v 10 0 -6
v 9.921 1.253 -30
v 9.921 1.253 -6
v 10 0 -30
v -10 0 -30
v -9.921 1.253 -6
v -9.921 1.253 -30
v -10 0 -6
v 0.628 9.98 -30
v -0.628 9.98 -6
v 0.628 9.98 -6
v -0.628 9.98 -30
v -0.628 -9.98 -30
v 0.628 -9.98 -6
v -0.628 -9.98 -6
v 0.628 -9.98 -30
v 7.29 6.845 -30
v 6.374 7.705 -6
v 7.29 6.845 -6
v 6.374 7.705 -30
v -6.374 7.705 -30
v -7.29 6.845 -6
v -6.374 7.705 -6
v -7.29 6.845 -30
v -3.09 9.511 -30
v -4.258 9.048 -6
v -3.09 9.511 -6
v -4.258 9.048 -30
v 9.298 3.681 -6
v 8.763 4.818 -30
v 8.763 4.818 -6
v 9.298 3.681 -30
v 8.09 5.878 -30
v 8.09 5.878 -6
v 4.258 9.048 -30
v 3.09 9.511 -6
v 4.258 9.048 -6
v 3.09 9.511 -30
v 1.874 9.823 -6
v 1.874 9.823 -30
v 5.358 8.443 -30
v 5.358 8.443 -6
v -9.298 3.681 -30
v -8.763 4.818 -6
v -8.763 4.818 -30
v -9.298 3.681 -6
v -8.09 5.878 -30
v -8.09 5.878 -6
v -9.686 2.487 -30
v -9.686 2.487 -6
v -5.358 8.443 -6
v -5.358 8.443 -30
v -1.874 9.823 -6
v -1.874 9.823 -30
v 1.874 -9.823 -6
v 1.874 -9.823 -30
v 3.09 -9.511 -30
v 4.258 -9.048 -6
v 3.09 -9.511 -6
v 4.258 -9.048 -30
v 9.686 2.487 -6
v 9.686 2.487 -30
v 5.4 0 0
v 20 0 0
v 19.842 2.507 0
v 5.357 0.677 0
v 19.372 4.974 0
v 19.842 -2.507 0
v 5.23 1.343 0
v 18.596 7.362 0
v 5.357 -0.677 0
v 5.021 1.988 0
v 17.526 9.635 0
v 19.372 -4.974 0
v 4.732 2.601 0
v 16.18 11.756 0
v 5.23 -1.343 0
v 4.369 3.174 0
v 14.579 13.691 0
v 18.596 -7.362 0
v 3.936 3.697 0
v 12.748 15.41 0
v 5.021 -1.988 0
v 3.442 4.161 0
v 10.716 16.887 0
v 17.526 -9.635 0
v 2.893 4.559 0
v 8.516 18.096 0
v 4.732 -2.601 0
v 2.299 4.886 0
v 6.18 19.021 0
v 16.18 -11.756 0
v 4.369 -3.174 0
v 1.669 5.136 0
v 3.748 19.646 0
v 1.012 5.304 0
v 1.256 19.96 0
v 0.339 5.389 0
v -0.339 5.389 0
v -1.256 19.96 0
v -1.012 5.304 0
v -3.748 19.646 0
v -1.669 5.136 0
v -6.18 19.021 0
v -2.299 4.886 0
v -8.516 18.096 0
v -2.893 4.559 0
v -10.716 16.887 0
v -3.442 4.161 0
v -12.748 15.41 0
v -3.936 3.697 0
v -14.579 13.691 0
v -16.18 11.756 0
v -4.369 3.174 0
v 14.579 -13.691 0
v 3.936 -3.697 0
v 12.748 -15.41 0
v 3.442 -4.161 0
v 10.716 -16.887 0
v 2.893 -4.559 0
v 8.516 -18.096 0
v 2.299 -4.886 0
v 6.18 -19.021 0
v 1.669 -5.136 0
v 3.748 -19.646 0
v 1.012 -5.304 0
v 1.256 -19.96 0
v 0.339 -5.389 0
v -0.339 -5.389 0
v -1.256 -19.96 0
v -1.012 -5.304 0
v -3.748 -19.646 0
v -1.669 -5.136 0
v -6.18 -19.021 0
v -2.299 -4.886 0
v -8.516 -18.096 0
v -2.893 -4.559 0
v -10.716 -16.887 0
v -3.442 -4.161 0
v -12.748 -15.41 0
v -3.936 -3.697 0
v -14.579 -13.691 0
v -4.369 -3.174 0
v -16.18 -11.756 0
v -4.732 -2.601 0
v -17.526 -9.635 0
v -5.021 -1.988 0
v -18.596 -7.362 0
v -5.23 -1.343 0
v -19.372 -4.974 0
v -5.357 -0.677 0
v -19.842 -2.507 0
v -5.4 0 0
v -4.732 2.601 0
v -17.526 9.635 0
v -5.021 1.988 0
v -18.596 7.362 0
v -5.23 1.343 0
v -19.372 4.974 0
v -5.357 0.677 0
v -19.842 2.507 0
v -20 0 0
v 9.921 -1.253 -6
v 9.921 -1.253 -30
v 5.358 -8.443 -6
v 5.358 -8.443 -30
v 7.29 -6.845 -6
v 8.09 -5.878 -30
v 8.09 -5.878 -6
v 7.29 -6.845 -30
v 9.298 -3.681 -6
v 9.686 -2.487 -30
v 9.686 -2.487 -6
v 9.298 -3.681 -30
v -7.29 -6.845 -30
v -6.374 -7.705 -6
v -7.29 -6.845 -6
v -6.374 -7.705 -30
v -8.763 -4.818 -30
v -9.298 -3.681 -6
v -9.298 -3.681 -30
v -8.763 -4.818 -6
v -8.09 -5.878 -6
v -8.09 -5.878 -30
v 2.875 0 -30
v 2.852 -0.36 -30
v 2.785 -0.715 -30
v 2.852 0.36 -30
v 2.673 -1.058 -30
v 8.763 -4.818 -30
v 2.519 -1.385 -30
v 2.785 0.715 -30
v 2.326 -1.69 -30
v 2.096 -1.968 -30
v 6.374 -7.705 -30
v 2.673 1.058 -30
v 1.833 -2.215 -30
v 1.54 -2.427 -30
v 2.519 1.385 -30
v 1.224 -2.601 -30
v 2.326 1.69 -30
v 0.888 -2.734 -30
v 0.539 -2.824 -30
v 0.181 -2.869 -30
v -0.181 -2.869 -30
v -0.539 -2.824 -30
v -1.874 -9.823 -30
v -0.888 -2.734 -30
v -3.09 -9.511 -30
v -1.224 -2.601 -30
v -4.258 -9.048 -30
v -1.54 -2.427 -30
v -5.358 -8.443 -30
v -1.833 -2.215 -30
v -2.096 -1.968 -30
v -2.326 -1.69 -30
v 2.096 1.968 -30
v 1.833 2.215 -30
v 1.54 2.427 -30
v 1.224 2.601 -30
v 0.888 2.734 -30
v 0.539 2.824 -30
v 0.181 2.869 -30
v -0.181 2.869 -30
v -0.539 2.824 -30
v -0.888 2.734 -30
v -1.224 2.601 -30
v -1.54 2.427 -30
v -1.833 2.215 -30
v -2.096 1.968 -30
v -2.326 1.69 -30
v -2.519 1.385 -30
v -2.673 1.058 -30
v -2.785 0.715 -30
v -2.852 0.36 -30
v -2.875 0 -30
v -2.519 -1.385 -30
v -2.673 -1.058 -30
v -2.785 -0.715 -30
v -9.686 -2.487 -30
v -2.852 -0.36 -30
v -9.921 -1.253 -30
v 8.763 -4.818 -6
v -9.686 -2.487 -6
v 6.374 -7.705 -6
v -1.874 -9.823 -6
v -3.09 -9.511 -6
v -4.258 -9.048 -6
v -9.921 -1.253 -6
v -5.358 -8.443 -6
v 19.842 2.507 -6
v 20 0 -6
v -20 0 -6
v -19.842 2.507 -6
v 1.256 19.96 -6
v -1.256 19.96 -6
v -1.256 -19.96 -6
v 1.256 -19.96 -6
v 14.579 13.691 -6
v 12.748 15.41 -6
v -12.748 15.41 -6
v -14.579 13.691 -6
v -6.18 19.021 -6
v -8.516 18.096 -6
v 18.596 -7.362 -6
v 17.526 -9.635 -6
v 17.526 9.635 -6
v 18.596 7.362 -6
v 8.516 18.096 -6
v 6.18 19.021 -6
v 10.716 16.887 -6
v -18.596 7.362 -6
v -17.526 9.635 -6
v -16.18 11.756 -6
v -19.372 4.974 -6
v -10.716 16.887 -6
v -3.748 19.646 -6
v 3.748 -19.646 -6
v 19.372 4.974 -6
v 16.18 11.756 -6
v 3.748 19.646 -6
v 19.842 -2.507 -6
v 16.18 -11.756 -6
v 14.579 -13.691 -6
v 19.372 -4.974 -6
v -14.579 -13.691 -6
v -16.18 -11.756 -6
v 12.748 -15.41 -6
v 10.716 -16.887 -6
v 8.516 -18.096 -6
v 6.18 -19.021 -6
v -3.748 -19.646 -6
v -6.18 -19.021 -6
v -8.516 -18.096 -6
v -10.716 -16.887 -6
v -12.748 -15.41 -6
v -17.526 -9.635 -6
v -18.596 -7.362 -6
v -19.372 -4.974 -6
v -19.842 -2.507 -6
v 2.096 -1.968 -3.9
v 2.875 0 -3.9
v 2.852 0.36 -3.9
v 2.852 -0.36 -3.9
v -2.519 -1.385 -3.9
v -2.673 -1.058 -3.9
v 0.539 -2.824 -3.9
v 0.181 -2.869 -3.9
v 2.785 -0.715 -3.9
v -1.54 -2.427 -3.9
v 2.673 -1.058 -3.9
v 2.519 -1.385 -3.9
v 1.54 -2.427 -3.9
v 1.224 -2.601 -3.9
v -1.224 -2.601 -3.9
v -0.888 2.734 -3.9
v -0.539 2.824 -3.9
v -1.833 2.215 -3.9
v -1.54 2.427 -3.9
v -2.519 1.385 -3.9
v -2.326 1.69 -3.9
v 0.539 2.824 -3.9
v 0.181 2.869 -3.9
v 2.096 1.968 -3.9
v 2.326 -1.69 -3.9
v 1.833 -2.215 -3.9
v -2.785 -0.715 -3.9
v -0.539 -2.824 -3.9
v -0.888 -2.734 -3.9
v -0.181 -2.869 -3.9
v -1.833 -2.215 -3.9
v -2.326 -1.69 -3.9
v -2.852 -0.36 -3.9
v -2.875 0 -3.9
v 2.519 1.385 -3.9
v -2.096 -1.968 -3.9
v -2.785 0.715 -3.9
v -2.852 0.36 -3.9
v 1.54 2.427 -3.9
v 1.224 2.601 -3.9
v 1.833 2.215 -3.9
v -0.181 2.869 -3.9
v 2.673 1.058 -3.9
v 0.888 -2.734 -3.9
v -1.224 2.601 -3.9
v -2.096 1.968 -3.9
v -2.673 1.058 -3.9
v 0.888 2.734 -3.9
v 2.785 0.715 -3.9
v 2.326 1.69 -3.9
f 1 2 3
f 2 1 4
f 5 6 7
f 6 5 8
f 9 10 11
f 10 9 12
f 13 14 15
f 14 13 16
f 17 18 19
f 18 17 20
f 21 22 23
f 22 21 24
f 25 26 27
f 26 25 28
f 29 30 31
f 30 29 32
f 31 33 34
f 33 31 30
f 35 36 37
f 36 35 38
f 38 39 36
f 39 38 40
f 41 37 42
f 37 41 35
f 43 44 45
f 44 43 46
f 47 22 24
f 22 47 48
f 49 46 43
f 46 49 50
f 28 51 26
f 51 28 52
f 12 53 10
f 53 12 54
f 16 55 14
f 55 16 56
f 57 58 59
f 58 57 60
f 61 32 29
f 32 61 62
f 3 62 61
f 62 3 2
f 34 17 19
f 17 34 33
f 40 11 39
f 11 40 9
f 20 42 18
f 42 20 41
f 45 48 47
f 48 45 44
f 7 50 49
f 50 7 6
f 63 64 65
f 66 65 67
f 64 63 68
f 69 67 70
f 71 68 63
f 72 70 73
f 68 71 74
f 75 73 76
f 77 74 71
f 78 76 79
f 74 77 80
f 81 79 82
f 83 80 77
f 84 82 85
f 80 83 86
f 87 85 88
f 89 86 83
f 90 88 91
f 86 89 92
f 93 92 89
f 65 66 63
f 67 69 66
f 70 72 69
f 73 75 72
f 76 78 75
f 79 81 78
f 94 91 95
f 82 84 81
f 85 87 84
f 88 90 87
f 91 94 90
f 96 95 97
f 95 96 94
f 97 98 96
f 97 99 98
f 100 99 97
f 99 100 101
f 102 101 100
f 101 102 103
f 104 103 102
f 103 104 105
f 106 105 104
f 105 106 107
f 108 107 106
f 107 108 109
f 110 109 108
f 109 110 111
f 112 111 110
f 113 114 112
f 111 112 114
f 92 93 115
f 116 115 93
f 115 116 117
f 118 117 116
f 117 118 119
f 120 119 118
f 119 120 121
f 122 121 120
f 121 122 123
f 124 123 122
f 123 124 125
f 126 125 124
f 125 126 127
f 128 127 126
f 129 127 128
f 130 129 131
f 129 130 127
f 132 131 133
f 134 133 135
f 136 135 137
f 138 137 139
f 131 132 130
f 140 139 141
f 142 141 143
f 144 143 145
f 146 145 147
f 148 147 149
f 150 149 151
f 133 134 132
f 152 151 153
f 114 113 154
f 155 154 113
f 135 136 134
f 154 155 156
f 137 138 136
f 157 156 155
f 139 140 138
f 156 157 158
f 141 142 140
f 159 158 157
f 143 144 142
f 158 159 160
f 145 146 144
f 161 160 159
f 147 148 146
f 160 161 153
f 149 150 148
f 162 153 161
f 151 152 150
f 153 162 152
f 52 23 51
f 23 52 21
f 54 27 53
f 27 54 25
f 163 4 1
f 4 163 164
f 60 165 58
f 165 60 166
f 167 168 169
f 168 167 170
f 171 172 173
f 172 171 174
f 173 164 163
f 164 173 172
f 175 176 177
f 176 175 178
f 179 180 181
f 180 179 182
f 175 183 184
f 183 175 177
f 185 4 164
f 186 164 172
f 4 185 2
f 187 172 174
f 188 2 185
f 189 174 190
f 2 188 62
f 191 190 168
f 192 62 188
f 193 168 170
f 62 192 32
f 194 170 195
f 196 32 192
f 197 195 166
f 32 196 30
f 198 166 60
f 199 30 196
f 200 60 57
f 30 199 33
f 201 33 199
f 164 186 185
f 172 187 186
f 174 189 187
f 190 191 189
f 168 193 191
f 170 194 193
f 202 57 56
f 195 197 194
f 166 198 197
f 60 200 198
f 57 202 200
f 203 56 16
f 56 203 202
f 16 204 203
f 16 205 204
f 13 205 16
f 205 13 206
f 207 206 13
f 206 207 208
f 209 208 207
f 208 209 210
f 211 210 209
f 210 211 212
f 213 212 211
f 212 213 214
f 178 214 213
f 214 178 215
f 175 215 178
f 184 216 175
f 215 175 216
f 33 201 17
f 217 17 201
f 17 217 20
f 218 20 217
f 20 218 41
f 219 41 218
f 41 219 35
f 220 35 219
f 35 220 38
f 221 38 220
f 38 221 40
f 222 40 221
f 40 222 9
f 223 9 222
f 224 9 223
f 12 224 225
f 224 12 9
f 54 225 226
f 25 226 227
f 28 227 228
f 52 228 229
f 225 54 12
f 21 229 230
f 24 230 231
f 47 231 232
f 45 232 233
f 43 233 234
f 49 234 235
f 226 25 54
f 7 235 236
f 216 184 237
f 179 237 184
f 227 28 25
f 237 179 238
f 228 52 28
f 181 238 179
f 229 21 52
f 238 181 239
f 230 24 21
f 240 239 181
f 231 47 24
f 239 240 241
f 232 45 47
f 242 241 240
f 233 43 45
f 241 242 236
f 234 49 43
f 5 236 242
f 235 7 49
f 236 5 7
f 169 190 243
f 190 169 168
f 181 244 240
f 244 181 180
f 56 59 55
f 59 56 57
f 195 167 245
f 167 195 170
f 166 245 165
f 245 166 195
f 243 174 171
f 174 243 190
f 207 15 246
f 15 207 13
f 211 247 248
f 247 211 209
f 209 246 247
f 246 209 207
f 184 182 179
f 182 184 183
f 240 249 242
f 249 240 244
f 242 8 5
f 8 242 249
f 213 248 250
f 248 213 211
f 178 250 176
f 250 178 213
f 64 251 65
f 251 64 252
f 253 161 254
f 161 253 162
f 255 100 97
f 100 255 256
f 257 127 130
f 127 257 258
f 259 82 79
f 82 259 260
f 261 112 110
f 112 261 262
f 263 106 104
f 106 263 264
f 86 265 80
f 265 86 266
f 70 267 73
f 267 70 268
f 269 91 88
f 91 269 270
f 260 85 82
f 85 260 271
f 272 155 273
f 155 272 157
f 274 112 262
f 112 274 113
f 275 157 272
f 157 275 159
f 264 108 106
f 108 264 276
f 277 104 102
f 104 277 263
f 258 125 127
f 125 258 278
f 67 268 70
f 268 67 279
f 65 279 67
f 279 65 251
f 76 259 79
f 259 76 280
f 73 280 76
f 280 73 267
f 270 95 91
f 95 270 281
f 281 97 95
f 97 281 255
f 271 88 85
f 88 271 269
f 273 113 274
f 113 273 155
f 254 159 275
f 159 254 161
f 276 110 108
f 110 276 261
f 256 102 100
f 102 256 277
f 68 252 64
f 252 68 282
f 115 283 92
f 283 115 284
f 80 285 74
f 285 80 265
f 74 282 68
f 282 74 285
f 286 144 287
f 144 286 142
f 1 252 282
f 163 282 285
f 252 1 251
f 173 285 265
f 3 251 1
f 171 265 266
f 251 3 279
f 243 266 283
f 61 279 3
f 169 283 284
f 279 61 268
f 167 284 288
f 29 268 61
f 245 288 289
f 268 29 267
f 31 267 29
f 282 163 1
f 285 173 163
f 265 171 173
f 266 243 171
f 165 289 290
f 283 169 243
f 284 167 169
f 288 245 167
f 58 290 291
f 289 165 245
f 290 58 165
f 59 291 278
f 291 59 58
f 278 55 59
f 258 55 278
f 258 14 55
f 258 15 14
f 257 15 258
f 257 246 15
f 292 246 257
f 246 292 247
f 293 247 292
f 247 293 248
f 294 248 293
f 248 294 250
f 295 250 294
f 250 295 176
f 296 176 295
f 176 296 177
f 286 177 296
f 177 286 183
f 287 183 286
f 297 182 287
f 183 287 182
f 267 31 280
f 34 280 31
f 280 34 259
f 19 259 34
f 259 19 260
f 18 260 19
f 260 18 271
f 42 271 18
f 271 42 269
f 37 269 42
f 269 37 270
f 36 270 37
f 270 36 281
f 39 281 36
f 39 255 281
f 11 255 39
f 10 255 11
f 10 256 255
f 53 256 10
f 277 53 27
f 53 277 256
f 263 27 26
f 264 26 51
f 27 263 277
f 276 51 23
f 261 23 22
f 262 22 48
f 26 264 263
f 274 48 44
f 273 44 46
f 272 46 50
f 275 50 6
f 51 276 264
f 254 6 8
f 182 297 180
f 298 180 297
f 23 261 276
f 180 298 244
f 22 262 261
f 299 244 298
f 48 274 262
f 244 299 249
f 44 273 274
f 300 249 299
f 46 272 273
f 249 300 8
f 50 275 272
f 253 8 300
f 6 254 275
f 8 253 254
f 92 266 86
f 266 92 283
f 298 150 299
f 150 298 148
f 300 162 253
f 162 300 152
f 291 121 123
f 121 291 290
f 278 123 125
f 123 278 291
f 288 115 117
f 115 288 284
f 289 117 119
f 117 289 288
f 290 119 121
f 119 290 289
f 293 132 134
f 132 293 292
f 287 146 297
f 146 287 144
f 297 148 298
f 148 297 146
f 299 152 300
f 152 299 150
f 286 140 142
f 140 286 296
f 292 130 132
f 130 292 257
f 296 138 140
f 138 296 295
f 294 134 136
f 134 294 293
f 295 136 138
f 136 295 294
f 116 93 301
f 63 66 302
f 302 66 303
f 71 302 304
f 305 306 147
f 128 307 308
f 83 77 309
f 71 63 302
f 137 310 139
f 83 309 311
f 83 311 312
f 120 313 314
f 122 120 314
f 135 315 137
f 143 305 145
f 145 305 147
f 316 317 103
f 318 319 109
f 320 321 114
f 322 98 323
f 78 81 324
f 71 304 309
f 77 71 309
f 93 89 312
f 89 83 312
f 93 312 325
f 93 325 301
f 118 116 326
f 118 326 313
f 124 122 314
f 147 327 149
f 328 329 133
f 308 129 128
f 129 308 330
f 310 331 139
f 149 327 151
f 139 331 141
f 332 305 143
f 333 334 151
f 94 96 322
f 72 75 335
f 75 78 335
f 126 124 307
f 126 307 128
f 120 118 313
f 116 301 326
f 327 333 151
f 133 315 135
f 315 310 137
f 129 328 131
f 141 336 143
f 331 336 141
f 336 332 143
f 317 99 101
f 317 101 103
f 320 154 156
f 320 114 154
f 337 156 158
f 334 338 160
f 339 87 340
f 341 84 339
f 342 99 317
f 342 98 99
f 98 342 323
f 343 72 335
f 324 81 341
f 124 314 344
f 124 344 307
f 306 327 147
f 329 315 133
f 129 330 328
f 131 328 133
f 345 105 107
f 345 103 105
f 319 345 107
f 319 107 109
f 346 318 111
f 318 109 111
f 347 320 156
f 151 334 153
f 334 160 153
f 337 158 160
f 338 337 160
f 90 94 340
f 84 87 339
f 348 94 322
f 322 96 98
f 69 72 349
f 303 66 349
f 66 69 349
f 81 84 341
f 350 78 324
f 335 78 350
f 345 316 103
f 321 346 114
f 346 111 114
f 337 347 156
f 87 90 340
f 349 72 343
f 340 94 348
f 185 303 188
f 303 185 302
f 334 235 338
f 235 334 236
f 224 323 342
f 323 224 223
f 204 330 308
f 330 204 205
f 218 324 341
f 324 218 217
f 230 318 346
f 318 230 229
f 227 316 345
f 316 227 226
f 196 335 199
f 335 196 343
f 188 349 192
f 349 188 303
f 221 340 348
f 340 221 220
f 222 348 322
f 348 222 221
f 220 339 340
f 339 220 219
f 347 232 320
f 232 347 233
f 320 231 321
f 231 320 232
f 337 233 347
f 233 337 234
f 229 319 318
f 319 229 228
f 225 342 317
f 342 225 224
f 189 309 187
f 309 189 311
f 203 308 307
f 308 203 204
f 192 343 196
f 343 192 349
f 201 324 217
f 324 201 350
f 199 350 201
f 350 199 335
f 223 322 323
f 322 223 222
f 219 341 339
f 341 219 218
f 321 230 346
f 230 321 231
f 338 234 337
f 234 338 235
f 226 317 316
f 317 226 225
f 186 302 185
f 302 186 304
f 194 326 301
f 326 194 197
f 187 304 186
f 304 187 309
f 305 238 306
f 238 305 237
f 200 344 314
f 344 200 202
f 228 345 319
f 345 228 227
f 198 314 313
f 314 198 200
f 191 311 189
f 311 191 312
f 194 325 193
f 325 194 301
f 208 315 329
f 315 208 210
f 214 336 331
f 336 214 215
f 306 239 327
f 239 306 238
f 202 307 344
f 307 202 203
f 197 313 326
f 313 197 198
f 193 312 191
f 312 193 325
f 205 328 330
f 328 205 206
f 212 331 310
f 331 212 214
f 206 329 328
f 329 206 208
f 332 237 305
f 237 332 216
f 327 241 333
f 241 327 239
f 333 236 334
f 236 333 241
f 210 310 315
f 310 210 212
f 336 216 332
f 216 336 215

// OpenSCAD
$fn = 50;


difference() {
	union() {
		translate(v = [0, 0, -30.0000000000]) {
			cylinder(h = 30, r = 10.0000000000);
		}
		translate(v = [0, 0, -6.0000000000]) {
			cylinder(h = 6, r = 20.0000000000);
		}
	}
	union() {
		translate(v = [0, 0, 0]) {
			rotate(a = [0, 0, 0]) {
				difference() {
					union() {
						#translate(v = [0, 0, -30.0000000000]) {
							cylinder(h = 30, r = 2.6000000000);
						}
						#translate(v = [0, 0, -3.9000000000]) {
							cylinder(h = 3.9000000000, r = 10.0000000000, r1 = 2.8750000000, r2 = 5.4000000000);
						}
						#translate(v = [0, 0, -30.0000000000]) {
							cylinder(h = 30, r = 2.8750000000);
						}
						#translate(v = [0, 0, -30.0000000000]) {
							cylinder(h = 30, r = 2.6000000000);
						}
					}
					union();
				}
			}
		}
	}
}
